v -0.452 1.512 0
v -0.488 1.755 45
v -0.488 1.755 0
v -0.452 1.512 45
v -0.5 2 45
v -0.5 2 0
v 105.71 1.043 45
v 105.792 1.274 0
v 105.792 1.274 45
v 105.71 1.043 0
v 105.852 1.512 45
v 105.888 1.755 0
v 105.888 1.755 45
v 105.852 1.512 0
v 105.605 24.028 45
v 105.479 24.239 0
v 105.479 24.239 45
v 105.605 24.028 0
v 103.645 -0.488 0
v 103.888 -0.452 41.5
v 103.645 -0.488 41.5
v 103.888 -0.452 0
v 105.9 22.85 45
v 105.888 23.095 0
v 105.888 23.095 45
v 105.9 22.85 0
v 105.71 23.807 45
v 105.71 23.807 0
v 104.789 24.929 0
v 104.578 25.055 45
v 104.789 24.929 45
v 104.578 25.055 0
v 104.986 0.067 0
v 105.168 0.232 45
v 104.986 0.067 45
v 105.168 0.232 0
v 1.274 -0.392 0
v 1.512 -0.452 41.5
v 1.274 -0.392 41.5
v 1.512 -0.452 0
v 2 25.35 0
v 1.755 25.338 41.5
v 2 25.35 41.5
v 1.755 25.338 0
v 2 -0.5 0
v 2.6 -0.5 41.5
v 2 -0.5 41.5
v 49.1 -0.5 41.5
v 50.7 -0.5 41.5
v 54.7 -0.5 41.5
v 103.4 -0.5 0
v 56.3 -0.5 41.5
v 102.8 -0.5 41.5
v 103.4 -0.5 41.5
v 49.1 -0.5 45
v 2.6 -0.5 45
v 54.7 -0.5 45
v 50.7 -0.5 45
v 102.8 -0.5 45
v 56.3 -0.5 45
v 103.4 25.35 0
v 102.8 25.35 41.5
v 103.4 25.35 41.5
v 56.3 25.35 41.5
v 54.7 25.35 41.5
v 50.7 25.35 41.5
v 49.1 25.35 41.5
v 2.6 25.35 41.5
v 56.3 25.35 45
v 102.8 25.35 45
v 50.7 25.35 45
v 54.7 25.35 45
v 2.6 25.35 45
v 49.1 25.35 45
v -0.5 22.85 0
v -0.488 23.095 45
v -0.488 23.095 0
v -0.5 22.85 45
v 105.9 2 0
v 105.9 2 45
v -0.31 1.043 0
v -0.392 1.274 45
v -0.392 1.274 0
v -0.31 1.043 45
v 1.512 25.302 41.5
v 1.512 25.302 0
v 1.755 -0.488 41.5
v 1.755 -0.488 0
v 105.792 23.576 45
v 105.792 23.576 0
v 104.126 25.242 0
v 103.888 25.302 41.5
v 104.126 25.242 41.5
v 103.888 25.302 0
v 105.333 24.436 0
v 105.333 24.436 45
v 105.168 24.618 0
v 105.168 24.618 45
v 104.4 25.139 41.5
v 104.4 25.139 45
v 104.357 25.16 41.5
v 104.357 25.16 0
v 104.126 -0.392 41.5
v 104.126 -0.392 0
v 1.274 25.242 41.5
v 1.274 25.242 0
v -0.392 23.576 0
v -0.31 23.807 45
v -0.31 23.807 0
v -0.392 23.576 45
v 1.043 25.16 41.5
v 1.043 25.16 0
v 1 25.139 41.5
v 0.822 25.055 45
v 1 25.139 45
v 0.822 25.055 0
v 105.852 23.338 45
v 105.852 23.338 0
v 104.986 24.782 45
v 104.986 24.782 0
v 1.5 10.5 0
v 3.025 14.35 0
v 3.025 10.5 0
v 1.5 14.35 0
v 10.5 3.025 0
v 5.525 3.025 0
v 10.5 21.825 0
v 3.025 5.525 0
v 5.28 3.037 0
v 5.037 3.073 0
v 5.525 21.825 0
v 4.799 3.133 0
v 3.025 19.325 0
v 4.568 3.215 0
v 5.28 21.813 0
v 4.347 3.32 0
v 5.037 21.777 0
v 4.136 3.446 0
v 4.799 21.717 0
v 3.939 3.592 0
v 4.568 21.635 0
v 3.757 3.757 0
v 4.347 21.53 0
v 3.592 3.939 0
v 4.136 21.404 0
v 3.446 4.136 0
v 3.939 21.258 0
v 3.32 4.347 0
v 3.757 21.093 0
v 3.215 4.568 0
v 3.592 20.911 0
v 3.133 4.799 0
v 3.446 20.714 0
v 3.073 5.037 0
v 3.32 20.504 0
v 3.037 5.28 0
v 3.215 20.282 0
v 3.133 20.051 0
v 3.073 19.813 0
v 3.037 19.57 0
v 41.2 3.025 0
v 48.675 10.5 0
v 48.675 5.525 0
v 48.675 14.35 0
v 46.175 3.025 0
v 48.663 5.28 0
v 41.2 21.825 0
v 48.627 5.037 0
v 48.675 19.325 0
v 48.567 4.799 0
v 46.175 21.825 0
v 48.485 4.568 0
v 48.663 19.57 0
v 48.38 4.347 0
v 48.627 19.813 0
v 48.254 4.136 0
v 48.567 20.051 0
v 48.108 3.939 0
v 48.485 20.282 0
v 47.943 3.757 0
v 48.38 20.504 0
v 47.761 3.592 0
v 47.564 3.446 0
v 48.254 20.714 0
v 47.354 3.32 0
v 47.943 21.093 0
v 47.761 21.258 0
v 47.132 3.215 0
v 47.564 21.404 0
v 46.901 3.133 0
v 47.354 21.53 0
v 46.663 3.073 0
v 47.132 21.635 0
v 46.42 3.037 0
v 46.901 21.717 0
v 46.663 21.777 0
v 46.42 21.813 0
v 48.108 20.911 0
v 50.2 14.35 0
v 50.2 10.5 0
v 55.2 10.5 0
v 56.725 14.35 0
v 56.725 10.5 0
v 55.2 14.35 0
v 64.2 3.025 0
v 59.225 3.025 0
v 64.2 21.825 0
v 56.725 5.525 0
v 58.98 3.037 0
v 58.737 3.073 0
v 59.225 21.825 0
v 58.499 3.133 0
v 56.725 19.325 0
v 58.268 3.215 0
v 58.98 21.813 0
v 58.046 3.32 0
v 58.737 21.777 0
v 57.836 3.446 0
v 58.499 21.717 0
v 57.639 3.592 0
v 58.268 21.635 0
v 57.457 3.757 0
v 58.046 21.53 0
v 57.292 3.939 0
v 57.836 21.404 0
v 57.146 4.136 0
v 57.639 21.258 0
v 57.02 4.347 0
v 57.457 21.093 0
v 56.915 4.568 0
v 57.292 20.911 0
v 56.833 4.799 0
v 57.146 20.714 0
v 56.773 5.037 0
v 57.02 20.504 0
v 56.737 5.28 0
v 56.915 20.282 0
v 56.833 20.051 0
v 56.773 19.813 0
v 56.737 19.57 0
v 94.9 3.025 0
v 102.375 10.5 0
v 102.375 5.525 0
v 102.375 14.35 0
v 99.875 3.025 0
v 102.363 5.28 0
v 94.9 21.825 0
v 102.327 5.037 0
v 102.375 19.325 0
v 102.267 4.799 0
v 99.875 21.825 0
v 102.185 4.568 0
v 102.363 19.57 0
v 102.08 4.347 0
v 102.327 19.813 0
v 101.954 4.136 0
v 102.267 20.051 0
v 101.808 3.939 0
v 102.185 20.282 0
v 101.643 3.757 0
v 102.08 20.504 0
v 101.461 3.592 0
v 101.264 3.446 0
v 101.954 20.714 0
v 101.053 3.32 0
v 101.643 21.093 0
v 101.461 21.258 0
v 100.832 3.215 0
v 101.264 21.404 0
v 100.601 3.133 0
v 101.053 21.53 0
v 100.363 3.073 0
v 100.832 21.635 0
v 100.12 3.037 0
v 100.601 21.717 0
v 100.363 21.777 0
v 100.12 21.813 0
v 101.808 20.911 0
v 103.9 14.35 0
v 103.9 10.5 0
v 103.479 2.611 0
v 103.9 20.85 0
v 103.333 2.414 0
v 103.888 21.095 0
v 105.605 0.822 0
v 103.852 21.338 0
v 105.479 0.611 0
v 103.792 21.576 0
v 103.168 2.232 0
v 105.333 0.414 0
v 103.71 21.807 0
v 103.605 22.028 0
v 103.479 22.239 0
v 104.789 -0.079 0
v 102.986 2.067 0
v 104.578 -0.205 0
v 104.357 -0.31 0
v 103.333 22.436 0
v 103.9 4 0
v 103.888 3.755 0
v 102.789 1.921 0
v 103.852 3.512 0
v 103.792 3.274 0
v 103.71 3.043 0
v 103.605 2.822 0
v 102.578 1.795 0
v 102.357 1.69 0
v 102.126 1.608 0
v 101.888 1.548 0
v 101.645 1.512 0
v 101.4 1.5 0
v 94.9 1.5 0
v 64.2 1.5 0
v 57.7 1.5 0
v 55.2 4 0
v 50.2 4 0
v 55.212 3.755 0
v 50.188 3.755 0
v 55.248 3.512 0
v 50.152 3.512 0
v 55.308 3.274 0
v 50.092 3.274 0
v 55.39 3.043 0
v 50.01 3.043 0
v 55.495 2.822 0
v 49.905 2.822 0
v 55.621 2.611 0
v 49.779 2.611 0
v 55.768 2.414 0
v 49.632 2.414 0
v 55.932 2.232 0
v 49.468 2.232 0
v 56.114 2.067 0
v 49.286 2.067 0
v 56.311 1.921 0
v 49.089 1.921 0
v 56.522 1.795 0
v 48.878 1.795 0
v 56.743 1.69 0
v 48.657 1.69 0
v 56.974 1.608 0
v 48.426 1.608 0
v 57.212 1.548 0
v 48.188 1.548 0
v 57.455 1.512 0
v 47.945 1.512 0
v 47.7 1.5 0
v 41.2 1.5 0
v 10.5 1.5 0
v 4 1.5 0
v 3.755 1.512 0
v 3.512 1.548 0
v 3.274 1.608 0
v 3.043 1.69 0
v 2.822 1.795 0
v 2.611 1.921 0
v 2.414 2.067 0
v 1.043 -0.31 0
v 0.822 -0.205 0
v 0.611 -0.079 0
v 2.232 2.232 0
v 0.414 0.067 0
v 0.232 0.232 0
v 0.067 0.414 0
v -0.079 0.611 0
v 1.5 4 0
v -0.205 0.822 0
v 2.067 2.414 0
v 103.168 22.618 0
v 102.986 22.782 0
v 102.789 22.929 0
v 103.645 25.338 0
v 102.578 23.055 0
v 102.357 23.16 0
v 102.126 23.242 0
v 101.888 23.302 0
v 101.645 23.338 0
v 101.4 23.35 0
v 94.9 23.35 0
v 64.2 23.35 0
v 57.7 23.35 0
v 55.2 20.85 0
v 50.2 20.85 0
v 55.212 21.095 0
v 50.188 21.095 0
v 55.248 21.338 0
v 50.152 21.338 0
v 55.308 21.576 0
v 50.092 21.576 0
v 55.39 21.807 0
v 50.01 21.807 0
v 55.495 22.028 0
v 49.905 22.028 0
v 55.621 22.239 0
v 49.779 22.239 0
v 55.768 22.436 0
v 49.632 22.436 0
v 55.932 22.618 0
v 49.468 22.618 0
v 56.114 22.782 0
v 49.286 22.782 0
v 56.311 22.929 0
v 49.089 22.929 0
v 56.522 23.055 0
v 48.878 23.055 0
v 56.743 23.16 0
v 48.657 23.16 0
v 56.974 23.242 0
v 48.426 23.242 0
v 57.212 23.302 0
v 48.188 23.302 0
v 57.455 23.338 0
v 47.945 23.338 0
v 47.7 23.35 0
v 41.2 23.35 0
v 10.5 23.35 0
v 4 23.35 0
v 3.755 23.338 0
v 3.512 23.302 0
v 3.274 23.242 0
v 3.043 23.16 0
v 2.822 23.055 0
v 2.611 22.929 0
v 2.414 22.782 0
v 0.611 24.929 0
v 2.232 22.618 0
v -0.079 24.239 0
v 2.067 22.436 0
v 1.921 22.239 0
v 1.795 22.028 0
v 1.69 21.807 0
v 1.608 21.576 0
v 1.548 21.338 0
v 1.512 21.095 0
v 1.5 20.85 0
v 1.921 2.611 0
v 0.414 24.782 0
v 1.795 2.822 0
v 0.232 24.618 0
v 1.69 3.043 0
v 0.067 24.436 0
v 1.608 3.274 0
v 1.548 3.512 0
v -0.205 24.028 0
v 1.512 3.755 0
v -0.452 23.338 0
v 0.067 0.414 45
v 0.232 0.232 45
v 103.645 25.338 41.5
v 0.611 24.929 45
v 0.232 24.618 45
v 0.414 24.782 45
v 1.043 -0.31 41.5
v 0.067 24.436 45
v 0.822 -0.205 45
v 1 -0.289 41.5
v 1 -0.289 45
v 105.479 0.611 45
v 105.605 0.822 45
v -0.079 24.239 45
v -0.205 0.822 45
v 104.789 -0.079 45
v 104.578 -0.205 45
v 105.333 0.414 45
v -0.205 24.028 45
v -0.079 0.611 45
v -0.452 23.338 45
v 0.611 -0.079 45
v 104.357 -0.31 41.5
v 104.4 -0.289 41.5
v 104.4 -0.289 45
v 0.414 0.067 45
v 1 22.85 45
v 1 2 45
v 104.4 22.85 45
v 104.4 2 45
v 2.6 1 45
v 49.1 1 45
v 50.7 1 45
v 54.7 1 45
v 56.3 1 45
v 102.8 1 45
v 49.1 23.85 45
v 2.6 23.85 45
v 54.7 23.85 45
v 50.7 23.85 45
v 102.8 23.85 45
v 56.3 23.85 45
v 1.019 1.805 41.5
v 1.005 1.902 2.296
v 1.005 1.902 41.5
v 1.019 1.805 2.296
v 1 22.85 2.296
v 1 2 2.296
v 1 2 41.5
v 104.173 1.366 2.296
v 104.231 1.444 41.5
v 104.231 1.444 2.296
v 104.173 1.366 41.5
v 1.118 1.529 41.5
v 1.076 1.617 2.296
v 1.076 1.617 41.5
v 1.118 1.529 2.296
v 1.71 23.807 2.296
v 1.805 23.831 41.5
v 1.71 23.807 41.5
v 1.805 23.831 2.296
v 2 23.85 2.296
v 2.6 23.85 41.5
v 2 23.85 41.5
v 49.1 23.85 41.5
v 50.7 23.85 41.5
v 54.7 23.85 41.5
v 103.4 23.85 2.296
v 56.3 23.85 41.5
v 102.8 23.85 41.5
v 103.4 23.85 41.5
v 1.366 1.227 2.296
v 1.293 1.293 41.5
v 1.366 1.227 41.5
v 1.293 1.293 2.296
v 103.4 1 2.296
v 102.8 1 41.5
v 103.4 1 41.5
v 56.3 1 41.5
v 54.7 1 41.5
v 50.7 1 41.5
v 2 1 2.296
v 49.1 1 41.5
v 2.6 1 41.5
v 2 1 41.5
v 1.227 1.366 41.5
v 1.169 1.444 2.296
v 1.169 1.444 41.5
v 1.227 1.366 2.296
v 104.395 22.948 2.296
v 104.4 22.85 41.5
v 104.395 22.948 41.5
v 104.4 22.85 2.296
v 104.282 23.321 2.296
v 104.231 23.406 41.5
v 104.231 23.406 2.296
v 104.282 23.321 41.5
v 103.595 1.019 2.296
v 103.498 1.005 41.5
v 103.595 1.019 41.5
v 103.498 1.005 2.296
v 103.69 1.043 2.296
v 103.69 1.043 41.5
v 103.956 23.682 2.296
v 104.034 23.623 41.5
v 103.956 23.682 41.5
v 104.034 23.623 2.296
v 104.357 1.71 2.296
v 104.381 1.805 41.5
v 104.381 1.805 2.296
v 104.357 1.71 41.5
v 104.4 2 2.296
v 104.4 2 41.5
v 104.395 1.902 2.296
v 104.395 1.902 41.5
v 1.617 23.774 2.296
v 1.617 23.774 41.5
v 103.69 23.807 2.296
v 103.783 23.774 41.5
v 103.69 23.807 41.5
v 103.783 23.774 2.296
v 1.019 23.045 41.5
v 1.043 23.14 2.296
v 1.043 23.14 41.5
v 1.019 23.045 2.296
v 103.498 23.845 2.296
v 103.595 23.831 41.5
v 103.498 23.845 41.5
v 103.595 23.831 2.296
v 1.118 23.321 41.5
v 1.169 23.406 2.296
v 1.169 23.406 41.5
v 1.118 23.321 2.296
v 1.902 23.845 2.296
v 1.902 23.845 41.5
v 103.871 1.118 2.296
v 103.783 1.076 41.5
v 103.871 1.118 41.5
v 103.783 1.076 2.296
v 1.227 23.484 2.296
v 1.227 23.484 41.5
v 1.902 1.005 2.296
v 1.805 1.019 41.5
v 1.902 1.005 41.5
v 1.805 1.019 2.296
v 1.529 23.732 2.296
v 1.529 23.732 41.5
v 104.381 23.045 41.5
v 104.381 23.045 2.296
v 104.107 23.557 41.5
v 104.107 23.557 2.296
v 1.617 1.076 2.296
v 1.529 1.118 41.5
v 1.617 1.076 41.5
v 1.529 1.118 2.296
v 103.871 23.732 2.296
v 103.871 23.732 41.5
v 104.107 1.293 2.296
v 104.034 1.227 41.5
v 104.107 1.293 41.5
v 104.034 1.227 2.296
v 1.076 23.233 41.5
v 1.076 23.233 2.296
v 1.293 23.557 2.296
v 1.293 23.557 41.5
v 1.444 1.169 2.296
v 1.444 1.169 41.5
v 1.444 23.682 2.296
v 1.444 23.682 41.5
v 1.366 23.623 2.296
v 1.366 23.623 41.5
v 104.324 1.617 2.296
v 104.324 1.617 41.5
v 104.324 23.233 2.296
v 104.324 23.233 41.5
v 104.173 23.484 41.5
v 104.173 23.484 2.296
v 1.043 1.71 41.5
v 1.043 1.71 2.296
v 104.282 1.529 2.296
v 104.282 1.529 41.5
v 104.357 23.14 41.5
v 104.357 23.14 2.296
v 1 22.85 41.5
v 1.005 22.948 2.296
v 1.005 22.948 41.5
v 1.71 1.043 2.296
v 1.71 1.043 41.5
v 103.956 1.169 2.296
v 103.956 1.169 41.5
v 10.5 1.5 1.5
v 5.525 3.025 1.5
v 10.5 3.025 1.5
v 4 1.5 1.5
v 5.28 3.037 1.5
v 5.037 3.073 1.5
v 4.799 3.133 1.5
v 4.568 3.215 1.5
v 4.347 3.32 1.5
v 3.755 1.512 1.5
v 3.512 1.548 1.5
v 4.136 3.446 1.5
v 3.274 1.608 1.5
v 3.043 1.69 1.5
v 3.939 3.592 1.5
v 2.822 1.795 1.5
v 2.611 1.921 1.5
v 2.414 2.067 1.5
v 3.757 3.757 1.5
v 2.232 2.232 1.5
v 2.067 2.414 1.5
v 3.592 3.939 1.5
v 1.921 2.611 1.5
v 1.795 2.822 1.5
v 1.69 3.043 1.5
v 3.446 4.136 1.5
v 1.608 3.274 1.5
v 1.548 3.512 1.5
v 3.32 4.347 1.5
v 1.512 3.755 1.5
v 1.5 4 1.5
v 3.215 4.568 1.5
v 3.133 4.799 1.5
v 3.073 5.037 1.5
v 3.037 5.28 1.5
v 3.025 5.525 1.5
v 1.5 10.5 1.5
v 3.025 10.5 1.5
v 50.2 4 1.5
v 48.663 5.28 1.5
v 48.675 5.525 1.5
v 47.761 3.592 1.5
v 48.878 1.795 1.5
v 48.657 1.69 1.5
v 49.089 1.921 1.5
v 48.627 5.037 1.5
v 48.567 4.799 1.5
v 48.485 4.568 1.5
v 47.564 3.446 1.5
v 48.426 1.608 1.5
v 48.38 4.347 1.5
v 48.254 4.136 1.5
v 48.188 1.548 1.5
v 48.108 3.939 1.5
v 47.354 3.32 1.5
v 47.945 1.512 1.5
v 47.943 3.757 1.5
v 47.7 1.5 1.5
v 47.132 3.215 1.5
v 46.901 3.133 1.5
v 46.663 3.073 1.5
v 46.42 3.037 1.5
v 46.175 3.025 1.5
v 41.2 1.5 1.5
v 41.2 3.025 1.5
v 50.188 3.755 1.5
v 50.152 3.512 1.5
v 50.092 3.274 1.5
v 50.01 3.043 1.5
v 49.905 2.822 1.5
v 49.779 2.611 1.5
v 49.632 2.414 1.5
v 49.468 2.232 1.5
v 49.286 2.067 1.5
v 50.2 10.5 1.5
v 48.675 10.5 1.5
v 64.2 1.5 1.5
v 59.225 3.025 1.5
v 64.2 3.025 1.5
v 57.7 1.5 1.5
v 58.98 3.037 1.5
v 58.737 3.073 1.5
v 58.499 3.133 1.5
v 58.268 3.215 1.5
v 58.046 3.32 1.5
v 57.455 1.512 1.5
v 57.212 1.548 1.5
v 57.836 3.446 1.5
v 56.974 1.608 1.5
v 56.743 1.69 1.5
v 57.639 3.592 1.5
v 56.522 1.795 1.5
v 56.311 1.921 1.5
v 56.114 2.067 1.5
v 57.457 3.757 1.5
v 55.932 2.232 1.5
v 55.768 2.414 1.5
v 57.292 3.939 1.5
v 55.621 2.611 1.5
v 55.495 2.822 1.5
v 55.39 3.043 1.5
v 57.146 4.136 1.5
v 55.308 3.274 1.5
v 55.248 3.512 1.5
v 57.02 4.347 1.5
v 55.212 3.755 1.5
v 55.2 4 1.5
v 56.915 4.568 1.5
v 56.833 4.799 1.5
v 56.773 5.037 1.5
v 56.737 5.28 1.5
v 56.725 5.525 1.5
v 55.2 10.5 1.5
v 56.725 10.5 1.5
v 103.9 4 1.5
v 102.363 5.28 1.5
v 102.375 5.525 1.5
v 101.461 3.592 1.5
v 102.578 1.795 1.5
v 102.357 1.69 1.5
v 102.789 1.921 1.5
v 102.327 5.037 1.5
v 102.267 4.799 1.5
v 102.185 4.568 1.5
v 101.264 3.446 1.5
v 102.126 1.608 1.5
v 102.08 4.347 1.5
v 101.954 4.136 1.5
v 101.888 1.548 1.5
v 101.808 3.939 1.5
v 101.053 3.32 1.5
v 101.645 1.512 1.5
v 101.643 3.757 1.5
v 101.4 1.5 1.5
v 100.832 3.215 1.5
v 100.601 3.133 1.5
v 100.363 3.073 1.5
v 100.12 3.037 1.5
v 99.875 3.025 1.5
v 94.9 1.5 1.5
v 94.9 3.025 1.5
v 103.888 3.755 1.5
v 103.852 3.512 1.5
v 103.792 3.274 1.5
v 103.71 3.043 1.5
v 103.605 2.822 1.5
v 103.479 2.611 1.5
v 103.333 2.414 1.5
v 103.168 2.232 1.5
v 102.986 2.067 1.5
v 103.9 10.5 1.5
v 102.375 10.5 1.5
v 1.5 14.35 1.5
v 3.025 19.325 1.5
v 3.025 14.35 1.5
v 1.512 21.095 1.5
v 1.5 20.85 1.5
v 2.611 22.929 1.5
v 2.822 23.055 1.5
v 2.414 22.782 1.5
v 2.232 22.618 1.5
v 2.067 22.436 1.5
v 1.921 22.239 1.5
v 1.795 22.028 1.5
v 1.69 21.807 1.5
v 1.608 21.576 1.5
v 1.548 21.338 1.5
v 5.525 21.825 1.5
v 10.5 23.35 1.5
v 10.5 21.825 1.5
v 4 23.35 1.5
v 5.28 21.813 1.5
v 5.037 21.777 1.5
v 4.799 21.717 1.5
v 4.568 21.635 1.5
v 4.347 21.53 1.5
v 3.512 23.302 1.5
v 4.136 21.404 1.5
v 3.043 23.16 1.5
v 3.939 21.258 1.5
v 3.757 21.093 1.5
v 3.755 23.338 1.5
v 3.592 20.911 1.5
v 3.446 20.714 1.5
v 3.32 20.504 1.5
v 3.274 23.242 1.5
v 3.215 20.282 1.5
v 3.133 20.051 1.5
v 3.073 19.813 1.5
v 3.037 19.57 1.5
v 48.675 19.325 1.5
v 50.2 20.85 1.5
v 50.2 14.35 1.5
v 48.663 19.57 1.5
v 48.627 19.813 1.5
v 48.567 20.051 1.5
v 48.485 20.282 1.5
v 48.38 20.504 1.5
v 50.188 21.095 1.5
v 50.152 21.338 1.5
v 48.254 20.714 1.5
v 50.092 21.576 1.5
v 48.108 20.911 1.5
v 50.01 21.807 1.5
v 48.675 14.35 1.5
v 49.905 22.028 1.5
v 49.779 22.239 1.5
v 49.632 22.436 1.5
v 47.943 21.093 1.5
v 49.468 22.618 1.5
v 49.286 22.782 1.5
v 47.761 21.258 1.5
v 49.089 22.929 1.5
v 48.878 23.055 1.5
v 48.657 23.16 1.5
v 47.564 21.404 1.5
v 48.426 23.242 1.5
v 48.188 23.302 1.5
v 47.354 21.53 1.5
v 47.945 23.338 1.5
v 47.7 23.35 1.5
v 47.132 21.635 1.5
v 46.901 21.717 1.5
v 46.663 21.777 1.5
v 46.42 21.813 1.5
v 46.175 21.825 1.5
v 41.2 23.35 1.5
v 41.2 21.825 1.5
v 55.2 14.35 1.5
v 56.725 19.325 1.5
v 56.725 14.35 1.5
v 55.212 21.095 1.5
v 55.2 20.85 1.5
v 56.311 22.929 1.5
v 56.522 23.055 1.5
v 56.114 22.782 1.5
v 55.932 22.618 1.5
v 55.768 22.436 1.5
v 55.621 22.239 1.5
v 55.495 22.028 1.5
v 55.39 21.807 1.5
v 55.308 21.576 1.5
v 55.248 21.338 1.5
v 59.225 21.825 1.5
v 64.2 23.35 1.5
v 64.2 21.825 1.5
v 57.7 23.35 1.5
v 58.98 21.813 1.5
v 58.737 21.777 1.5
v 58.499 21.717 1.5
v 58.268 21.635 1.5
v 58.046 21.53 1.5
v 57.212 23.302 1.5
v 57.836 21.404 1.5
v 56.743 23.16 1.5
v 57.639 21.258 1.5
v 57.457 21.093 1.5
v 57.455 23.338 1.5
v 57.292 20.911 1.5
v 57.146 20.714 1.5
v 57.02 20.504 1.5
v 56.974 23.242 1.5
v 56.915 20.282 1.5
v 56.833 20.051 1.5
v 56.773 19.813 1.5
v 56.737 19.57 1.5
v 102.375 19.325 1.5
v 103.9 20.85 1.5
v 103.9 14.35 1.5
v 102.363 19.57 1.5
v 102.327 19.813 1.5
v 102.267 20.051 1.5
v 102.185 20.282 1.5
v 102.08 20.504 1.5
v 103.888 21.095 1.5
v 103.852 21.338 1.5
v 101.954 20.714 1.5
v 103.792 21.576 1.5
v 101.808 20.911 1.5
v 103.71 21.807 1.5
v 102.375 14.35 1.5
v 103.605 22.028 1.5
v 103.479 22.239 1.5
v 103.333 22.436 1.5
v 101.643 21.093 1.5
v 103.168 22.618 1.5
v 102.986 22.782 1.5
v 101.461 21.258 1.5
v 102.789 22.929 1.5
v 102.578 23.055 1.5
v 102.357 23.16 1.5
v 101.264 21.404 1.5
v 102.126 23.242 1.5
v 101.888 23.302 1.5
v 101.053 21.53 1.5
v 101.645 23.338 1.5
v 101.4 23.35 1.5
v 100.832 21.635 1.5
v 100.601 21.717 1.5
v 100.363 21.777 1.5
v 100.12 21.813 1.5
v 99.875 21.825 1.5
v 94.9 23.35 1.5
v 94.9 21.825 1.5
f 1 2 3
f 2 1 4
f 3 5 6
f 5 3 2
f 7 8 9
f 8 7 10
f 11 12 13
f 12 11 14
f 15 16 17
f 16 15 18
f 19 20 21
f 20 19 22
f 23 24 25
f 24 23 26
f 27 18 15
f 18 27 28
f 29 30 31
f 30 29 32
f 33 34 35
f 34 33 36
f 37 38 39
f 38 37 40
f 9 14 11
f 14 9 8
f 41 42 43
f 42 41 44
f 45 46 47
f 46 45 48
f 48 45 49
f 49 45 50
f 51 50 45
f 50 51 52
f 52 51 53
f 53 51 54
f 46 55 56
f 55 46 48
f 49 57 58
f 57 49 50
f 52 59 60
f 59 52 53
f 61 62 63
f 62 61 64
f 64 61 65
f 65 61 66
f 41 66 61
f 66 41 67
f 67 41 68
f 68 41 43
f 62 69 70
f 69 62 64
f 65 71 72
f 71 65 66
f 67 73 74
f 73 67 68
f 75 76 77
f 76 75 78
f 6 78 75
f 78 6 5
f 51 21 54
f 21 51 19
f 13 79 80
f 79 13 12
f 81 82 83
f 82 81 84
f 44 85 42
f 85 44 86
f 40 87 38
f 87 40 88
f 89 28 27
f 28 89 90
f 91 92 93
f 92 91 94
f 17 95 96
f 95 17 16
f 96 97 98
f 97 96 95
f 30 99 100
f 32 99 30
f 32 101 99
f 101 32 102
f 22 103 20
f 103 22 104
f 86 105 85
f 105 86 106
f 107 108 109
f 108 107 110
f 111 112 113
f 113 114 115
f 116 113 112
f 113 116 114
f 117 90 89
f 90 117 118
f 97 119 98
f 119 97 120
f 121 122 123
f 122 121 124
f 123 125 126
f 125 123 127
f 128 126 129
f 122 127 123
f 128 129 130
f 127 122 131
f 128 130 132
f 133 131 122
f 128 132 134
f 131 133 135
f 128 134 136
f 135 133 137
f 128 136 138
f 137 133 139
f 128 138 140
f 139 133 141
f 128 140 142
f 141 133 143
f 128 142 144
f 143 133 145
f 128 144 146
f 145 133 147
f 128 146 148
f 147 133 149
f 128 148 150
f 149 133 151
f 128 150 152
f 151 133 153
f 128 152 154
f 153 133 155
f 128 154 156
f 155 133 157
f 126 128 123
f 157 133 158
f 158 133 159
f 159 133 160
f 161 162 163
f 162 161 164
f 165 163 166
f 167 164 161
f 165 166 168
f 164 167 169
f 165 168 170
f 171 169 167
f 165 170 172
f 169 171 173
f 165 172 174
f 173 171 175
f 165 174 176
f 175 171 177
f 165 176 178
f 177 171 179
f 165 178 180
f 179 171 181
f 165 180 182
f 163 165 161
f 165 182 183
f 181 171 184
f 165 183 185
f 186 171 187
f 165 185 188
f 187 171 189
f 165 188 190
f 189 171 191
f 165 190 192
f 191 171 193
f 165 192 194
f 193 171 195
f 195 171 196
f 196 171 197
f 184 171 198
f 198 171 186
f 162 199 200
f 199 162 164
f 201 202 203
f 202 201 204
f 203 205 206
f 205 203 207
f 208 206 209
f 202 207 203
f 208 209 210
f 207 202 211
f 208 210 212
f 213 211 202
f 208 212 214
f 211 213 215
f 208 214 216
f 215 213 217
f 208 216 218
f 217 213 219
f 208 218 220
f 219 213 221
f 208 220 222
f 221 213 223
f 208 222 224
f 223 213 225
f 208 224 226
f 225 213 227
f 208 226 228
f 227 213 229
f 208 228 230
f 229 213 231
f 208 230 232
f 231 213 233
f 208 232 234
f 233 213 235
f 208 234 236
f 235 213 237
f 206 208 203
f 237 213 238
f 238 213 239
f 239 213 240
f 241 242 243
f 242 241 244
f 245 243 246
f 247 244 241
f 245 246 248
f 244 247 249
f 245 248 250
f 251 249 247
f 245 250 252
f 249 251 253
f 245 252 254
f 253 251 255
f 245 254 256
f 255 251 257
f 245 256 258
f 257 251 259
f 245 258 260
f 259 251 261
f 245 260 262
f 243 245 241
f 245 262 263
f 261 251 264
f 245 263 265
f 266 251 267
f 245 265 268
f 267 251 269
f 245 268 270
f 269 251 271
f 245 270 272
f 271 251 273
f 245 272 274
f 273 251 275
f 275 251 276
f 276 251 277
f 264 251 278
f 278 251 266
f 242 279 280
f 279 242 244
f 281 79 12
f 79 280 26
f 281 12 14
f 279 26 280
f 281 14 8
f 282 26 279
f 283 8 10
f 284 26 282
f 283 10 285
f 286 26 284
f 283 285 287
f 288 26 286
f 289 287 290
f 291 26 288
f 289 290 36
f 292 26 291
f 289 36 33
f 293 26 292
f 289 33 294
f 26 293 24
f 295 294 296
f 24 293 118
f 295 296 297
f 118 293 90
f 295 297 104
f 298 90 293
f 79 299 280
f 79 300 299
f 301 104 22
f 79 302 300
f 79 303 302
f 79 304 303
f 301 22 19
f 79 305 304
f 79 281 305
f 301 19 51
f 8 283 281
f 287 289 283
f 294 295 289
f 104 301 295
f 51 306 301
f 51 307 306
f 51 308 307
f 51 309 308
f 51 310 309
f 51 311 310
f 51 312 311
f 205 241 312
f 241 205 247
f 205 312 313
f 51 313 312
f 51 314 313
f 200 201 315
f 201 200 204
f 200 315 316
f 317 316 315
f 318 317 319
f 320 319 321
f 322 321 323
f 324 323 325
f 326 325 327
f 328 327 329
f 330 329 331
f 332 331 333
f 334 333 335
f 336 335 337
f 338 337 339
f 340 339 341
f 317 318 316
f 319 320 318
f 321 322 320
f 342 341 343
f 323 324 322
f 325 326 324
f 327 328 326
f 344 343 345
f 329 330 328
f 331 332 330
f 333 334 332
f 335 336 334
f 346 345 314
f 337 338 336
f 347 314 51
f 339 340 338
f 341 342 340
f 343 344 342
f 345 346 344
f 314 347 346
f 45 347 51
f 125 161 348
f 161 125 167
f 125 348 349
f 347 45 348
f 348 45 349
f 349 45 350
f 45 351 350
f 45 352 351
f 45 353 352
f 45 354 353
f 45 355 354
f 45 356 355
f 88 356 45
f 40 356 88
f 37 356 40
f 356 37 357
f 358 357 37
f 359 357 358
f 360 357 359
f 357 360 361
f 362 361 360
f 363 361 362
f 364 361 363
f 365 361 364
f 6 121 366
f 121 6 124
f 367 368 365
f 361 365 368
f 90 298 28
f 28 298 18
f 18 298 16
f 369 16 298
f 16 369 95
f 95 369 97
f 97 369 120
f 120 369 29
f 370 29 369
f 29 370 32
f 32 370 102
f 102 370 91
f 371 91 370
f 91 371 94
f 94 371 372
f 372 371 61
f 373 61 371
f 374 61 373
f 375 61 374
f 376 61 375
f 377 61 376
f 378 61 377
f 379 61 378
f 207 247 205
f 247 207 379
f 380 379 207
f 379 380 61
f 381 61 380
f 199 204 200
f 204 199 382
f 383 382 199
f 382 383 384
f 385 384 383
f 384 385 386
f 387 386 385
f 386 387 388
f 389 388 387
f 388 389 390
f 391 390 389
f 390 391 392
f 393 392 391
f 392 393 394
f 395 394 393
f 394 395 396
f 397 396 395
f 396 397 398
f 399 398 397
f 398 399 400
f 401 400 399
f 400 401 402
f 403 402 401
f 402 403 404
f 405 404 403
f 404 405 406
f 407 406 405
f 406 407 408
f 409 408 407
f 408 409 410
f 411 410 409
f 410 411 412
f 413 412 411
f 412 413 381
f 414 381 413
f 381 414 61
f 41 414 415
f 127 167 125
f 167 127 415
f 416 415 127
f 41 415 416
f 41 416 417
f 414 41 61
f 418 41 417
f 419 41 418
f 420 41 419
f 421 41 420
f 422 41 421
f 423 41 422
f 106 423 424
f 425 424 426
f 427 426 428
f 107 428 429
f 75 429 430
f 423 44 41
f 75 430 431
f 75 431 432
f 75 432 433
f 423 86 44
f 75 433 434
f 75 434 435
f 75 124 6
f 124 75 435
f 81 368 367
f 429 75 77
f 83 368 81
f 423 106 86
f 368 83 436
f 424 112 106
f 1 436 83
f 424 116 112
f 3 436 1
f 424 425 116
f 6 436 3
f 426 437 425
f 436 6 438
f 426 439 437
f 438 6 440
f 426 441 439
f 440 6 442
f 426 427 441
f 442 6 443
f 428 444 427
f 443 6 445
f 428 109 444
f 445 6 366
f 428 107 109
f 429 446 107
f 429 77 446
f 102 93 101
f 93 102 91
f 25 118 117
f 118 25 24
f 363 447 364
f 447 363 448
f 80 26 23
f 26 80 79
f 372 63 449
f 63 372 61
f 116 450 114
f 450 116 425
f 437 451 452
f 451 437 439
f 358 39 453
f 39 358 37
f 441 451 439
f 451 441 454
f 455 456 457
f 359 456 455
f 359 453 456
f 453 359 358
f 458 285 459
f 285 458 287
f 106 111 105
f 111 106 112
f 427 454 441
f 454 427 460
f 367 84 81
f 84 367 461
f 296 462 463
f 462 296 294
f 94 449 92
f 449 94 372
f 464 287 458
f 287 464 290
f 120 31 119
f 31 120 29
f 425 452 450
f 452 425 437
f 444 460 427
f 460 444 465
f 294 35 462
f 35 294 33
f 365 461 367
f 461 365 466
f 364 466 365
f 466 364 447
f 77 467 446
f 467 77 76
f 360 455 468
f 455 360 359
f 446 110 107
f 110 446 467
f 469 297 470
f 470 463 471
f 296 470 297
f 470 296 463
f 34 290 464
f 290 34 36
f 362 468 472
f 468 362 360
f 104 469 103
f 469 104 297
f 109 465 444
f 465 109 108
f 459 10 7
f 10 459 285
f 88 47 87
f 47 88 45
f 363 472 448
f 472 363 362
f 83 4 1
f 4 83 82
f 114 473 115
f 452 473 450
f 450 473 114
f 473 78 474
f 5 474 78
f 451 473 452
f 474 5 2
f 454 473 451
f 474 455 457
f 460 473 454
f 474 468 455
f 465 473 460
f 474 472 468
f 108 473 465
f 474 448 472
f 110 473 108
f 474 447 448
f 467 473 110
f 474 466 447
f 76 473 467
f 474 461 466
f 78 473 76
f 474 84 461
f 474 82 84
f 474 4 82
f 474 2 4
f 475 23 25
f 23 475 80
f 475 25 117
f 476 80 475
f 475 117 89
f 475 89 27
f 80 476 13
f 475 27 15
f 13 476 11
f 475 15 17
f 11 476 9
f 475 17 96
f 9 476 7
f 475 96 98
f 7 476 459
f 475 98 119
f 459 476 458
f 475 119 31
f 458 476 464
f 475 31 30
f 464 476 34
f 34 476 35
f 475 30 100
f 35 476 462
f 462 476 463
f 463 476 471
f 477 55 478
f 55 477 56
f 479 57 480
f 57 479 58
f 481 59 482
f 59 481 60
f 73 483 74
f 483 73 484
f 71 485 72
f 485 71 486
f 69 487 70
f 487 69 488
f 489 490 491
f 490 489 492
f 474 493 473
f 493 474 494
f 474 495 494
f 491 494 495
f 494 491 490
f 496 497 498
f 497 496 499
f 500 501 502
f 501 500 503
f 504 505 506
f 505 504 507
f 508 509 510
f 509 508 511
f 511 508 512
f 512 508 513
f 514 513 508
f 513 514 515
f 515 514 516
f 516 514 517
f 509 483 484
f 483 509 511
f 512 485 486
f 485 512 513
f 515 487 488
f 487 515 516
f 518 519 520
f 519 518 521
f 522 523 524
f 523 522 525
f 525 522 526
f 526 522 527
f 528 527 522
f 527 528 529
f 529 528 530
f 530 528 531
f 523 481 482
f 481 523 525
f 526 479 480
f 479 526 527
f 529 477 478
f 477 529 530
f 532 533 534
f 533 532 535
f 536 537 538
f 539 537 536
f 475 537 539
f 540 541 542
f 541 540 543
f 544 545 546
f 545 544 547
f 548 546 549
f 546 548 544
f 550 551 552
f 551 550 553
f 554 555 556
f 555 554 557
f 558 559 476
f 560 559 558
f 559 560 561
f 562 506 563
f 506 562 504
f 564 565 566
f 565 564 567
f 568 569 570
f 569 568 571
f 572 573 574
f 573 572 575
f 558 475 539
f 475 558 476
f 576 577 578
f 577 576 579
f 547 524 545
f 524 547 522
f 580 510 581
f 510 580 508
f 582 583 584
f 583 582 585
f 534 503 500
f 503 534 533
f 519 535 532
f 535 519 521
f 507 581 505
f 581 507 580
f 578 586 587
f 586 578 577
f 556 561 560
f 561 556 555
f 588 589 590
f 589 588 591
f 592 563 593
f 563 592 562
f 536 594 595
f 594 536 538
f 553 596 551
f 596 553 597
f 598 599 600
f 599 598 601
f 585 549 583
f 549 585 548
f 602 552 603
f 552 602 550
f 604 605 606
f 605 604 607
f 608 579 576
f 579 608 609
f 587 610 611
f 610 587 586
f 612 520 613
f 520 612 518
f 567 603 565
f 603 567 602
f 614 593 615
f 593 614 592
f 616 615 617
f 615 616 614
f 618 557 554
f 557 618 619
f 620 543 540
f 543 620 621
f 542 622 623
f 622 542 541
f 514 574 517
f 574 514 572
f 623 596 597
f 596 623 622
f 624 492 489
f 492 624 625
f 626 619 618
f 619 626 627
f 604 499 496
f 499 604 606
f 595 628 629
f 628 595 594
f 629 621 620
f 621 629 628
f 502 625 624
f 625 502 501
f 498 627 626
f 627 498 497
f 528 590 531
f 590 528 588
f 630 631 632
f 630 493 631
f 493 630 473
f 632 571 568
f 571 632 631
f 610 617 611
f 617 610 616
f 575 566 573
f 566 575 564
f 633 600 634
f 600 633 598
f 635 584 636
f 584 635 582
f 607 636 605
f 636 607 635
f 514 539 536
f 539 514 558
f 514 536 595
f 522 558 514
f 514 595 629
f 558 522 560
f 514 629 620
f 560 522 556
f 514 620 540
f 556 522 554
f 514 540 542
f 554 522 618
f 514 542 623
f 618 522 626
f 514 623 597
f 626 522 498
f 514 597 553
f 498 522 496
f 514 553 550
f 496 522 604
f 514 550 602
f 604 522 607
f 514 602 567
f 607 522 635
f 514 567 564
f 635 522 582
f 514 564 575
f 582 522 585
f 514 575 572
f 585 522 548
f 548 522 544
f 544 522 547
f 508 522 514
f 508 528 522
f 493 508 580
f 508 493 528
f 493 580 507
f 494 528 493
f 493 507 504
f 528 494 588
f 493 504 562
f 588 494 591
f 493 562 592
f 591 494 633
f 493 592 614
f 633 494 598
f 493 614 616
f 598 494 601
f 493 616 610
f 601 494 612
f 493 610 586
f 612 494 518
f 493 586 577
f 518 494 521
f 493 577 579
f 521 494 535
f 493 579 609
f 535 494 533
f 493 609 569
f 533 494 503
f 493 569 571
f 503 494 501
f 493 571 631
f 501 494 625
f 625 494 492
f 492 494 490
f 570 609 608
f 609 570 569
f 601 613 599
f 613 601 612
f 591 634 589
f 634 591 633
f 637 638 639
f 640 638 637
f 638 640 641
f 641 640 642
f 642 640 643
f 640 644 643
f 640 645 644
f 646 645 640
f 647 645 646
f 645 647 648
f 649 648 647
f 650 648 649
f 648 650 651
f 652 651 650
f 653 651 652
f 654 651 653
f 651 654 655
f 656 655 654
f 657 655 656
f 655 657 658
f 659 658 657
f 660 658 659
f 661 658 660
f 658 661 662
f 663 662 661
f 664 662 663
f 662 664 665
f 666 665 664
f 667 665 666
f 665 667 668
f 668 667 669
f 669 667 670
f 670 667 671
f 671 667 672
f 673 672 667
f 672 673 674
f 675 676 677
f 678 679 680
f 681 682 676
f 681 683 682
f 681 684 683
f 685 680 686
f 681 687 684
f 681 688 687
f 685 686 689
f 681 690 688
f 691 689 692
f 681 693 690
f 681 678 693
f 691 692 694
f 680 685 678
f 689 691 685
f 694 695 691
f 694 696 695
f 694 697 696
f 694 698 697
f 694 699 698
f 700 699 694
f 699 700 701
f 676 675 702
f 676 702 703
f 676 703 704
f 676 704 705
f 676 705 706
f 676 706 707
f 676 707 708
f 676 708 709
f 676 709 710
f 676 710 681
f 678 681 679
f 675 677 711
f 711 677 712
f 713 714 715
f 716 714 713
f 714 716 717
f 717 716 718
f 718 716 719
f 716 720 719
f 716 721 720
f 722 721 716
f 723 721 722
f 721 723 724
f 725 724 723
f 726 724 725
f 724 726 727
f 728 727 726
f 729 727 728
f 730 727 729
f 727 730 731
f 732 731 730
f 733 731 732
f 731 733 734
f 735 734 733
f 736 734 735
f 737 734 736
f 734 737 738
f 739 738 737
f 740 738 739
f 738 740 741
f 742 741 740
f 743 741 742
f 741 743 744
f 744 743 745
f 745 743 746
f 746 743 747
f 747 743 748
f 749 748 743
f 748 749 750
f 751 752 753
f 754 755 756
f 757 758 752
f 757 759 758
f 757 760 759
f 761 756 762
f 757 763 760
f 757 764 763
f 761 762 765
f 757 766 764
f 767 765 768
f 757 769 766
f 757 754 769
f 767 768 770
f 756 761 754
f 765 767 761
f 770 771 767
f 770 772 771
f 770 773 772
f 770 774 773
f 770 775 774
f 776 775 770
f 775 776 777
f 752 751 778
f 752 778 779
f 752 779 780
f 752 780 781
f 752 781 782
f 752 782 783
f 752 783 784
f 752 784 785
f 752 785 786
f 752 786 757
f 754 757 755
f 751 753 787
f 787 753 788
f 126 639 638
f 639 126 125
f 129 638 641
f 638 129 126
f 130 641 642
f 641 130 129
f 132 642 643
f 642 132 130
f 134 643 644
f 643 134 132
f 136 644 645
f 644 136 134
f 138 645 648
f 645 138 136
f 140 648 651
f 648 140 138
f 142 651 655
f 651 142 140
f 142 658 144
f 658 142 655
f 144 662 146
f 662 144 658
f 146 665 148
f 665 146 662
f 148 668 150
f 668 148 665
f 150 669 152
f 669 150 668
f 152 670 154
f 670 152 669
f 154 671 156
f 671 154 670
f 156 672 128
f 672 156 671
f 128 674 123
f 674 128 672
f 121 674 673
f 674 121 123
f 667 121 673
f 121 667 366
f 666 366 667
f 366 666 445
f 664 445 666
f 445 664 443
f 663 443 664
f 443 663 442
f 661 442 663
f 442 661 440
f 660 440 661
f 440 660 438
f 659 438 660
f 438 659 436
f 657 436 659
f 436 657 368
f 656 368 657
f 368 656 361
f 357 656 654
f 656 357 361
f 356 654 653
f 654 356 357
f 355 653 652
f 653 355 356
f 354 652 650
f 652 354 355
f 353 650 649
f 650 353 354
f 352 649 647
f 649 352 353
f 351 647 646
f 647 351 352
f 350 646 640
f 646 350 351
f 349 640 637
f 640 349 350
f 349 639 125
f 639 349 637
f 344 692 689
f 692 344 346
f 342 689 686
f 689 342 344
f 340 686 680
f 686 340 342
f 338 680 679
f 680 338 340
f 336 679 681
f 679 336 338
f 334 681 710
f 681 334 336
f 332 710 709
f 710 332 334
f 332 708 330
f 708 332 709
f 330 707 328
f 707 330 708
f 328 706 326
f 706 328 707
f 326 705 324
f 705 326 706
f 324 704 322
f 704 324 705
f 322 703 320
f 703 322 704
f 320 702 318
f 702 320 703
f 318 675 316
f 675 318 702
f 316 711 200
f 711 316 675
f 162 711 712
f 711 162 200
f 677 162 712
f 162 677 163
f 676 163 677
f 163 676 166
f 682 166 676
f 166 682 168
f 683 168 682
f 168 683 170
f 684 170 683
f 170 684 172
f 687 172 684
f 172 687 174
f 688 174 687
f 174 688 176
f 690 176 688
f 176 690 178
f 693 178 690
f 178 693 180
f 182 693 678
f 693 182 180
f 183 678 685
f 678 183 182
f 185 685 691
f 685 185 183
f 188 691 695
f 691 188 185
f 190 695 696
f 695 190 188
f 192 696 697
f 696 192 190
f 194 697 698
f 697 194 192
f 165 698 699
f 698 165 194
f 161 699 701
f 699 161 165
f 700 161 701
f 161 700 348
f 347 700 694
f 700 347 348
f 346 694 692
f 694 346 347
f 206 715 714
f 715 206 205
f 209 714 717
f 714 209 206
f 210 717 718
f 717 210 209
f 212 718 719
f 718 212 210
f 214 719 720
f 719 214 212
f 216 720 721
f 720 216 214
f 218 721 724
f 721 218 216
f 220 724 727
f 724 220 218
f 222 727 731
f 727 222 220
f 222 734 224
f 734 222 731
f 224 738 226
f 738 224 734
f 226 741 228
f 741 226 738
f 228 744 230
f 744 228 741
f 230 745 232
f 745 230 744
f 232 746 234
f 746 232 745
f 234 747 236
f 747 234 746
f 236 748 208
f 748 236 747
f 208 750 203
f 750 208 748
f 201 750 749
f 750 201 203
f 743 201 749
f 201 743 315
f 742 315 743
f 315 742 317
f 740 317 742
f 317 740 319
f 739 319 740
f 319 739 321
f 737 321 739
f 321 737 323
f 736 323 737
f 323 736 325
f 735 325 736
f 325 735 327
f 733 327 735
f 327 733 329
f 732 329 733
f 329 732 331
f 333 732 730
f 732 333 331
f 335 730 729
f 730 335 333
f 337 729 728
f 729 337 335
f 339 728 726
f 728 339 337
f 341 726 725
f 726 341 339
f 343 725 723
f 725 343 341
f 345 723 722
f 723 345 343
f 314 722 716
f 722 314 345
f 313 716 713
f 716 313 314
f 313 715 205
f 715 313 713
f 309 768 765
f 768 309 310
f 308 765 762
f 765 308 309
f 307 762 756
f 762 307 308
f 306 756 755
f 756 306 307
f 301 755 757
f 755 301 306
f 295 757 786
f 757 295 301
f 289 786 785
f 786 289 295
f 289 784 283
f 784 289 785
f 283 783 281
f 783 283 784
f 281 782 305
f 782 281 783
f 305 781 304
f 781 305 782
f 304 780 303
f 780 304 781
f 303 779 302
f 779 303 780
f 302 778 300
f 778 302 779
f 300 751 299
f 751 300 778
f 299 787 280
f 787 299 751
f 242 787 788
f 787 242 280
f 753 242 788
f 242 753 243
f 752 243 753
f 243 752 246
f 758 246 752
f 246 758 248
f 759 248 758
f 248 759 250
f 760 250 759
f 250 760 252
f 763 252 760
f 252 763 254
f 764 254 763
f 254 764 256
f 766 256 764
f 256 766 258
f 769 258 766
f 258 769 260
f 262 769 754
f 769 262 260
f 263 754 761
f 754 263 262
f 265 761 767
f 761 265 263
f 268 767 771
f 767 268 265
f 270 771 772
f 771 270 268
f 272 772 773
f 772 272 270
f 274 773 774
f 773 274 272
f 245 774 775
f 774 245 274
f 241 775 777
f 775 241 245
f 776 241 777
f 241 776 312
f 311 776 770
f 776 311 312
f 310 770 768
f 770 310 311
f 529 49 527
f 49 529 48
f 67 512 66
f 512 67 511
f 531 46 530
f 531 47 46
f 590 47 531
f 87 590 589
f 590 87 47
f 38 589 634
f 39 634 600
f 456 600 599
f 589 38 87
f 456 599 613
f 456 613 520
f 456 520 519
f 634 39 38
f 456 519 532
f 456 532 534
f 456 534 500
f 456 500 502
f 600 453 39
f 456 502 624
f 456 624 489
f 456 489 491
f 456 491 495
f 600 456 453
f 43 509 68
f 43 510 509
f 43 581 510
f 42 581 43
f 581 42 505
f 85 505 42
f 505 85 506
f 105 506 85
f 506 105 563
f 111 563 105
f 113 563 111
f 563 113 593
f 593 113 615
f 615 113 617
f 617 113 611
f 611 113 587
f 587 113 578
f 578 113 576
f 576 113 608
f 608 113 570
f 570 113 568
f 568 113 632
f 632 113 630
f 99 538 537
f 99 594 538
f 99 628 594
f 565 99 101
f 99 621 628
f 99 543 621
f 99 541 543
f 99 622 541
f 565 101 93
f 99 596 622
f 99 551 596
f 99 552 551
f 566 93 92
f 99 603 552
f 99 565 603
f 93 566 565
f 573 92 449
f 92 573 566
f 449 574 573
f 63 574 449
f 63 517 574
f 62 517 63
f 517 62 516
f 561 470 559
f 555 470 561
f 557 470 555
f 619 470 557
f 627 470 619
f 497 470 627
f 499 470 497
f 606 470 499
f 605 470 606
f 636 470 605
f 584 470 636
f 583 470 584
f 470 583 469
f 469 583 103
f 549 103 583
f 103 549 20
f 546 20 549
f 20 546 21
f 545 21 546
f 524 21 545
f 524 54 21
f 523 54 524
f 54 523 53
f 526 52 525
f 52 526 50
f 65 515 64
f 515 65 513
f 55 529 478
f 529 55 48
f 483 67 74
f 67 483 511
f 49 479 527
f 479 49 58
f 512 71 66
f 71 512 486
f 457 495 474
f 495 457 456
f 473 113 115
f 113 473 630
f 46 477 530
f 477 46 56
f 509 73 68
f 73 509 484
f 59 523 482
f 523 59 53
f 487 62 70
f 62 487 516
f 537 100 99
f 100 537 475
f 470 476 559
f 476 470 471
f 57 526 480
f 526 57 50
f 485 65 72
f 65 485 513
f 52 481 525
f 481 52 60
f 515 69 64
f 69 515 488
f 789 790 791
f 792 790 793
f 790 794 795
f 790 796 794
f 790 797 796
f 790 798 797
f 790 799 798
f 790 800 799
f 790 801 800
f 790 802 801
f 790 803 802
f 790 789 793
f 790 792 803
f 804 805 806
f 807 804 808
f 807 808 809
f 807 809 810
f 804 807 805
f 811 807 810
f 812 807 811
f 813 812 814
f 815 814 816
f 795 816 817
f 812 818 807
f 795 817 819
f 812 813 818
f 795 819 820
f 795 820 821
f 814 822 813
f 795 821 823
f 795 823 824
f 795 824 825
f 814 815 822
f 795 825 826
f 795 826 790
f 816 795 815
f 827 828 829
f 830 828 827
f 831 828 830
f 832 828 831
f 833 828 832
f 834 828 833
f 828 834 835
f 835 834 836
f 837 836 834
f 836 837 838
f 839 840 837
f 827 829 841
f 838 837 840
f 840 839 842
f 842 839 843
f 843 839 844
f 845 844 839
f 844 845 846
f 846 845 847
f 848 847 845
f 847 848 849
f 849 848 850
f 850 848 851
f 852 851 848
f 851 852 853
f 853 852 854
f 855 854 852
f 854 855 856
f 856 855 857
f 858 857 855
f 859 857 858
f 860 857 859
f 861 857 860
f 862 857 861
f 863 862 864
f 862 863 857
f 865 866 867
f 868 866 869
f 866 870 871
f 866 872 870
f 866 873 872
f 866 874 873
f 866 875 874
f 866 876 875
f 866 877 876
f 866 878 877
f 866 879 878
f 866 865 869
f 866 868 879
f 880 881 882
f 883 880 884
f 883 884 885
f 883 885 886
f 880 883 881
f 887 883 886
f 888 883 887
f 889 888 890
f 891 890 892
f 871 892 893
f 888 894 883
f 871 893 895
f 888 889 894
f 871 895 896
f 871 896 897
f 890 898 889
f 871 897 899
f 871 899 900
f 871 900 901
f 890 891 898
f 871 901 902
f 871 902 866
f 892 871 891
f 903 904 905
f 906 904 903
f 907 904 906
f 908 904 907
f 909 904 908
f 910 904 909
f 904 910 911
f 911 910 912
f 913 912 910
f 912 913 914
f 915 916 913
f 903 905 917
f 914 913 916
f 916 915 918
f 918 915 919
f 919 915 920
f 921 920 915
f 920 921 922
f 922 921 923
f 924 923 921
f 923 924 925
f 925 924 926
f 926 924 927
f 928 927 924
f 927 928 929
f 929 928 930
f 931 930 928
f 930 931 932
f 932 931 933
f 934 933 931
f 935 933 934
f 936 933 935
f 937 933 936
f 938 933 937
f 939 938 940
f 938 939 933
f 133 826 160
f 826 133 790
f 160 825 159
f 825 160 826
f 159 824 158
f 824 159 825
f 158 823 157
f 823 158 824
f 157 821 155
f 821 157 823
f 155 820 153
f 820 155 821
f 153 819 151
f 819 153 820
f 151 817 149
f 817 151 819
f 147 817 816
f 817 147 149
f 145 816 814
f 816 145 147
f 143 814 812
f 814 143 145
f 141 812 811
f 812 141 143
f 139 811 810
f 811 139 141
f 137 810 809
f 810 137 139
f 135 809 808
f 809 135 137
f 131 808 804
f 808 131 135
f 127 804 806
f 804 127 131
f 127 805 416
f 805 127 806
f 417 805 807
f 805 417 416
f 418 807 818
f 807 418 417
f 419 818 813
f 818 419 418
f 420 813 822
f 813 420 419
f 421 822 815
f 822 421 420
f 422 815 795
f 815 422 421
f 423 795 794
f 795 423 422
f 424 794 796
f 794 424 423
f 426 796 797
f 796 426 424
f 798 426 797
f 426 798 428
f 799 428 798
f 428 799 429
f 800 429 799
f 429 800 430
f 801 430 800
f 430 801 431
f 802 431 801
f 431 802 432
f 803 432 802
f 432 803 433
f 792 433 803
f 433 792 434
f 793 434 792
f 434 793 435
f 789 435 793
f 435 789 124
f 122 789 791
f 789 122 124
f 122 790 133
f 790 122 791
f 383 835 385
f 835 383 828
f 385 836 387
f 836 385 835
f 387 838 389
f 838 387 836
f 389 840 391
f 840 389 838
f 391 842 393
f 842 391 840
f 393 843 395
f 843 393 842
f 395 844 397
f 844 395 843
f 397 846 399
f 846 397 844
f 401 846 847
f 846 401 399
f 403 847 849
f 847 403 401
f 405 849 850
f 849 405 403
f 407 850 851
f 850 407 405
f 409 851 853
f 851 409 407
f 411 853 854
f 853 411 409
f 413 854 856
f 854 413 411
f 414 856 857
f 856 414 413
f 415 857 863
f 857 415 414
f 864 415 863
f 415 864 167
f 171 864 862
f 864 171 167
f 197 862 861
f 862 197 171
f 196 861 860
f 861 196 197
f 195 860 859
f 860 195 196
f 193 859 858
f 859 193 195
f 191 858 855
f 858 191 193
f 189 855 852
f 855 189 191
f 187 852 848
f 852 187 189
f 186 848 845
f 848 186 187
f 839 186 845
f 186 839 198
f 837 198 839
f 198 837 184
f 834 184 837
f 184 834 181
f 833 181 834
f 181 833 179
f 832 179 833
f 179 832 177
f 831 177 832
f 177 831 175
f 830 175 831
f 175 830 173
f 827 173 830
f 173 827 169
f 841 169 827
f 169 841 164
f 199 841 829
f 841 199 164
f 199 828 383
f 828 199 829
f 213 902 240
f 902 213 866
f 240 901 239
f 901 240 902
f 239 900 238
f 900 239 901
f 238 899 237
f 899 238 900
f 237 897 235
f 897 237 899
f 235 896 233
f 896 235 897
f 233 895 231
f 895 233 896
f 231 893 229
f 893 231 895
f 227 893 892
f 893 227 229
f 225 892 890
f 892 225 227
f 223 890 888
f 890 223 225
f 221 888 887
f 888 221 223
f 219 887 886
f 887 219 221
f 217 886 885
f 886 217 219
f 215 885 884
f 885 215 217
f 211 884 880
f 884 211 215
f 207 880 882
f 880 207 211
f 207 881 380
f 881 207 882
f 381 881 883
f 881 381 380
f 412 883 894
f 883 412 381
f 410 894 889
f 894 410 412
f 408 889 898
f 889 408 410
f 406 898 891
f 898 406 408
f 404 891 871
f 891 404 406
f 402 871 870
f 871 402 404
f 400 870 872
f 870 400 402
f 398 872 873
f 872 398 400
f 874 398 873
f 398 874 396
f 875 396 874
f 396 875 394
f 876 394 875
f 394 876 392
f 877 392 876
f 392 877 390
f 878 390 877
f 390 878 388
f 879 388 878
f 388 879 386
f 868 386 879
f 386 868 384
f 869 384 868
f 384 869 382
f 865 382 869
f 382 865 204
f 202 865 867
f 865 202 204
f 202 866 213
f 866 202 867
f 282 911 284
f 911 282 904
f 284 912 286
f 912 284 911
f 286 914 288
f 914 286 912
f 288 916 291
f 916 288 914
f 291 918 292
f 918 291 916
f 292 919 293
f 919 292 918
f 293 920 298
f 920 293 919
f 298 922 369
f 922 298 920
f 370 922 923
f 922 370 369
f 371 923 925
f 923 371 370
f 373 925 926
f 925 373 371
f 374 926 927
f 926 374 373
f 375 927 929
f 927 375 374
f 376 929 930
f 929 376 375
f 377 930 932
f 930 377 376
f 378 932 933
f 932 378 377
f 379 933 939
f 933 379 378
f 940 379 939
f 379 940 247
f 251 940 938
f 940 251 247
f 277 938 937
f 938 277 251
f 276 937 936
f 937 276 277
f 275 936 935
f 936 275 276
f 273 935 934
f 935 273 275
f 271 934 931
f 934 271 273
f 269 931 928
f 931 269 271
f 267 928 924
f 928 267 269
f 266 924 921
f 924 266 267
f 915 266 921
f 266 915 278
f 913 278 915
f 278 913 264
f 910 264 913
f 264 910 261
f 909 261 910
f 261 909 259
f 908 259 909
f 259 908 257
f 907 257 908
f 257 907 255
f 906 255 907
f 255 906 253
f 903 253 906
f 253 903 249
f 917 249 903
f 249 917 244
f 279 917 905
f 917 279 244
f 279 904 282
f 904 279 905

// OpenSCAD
module Container_num_x_2_num_y_0_5(){
  difference(){
    translate([52.7, 12.425, 0])color("red")difference(){
          translate([-53.2, -12.925, 0])color("purple")union()linear_extrude(height=45)translate([2.5, 2.5, 0])hull(){
                      circle(d=5,$fn=64);
                      translate([101.4, 0, 0])circle(d=5,$fn=64);
                      translate([0, 20.85, 0])circle(d=5,$fn=64);
                      translate([101.4, 20.85, 0])circle(d=5,$fn=64);
                    }

          translate([-51.7, -11.425, 2.296])union()linear_extrude(height=45.008)translate([1, 1, 0])hull(){
                    circle(d=2,$fn=64);
                    translate([101.4, 0, 0])circle(d=2,$fn=64);
                    translate([0, 20.85, 0])circle(d=2,$fn=64);
                    translate([101.4, 20.85, 0])circle(d=2,$fn=64);
                  }

        }

    union(){
      translate([25.85, 25.85, 0])union(){
          translate([0, 0, -1])%linear_extrude(height=1)union(){
                translate([-25.85, -25.85, 0])square([51.7, 51.7]);
                translate([-25.85, -25.85, 0])square([51.7, 51.7]);
                translate([27.85, -25.85, 0])square([51.7, 51.7]);
              }

          translate([0, 0, 45.002])%linear_extrude(height=1.004)union(){
                translate([-25.85, -25.85, 0])square([51.7, 51.7]);
                translate([-25.85, -25.85, 0])square([51.7, 51.7]);
                translate([27.85, -25.85, 0])square([51.7, 51.7]);
              }

          color("red")linear_extrude(height=1.5)union(){
                difference(){
                  translate([-24.35, -24.35, 0])union()translate([2.5, 2.5, 0])hull(){
                          circle(d=5,$fn=64);
                          translate([43.7, 0, 0])circle(d=5,$fn=64);
                          translate([0, 43.7, 0])circle(d=5,$fn=64);
                          translate([43.7, 43.7, 0])circle(d=5,$fn=64);
                        }

                  translate([-22.825, -22.825, 0])union()translate([2.5, 2.5, 0])hull(){
                          circle(d=5,$fn=64);
                          translate([40.65, 0, 0])circle(d=5,$fn=64);
                          translate([0, 40.65, 0])circle(d=5,$fn=64);
                          translate([40.65, 40.65, 0])circle(d=5,$fn=64);
                        }

                  translate([-15.35, -25.85, 0])square([30.700000000000003, 51.7]);
                  translate([-25.85, -15.35, 0])square([51.7, 30.700000000000003]);
                }

                difference(){
                  translate([-24.35, -24.35, 0])union()translate([2.5, 2.5, 0])hull(){
                          circle(d=5,$fn=64);
                          translate([43.7, 0, 0])circle(d=5,$fn=64);
                          translate([0, 43.7, 0])circle(d=5,$fn=64);
                          translate([43.7, 43.7, 0])circle(d=5,$fn=64);
                        }

                  translate([-22.825, -22.825, 0])union()translate([2.5, 2.5, 0])hull(){
                          circle(d=5,$fn=64);
                          translate([40.65, 0, 0])circle(d=5,$fn=64);
                          translate([0, 40.65, 0])circle(d=5,$fn=64);
                          translate([40.65, 40.65, 0])circle(d=5,$fn=64);
                        }

                  translate([-15.35, -25.85, 0])square([30.700000000000003, 51.7]);
                  translate([-25.85, -15.35, 0])square([51.7, 30.700000000000003]);
                }

                translate([53.7, 0, 0])difference(){
                    translate([-24.35, -24.35, 0])union()translate([2.5, 2.5, 0])hull(){
                            circle(d=5,$fn=64);
                            translate([43.7, 0, 0])circle(d=5,$fn=64);
                            translate([0, 43.7, 0])circle(d=5,$fn=64);
                            translate([43.7, 43.7, 0])circle(d=5,$fn=64);
                          }

                    translate([-22.825, -22.825, 0])union()translate([2.5, 2.5, 0])hull(){
                            circle(d=5,$fn=64);
                            translate([40.65, 0, 0])circle(d=5,$fn=64);
                            translate([0, 40.65, 0])circle(d=5,$fn=64);
                            translate([40.65, 40.65, 0])circle(d=5,$fn=64);
                          }

                    translate([-15.35, -25.85, 0])square([30.700000000000003, 51.7]);
                    translate([-25.85, -15.35, 0])square([51.7, 30.700000000000003]);
                  }

              }

          translate([0, 0, 41.5])color("blue")linear_extrude(height=3.5)union(){
                  translate([-21.6, 23.25, 0])square([43.2, 1.6]);
                  translate([-21.6, -24.85, 0])square([43.2, 1.6]);
                  translate([23.25, -21.6, 0])square([1.6, 43.2]);
                  translate([-24.85, -21.6, 0])square([1.6, 43.2]);
                  union(){
                    translate([-21.6, 23.25, 0])square([43.2, 1.6]);
                    translate([-21.6, -24.85, 0])square([43.2, 1.6]);
                    translate([23.25, -21.6, 0])square([1.6, 43.2]);
                    translate([-24.85, -21.6, 0])square([1.6, 43.2]);
                  }

                  translate([53.7, 0, 0])union(){
                      translate([-21.6, 23.25, 0])square([43.2, 1.6]);
                      translate([-21.6, -24.85, 0])square([43.2, 1.6]);
                      translate([23.25, -21.6, 0])square([1.6, 43.2]);
                      translate([-24.85, -21.6, 0])square([1.6, 43.2]);
                    }

                }

        }

      translate([25.85, -1, 0])union(){
          translate([0, 0, -1])%linear_extrude(height=1)union(){
                translate([-25.85, -25.85, 0])square([51.7, 51.7]);
                translate([-25.85, -25.85, 0])square([51.7, 51.7]);
                translate([27.85, -25.85, 0])square([51.7, 51.7]);
              }

          translate([0, 0, 45.002])%linear_extrude(height=1.004)union(){
                translate([-25.85, -25.85, 0])square([51.7, 51.7]);
                translate([-25.85, -25.85, 0])square([51.7, 51.7]);
                translate([27.85, -25.85, 0])square([51.7, 51.7]);
              }

          color("red")linear_extrude(height=1.5)union(){
                difference(){
                  translate([-24.35, -24.35, 0])union()translate([2.5, 2.5, 0])hull(){
                          circle(d=5,$fn=64);
                          translate([43.7, 0, 0])circle(d=5,$fn=64);
                          translate([0, 43.7, 0])circle(d=5,$fn=64);
                          translate([43.7, 43.7, 0])circle(d=5,$fn=64);
                        }

                  translate([-22.825, -22.825, 0])union()translate([2.5, 2.5, 0])hull(){
                          circle(d=5,$fn=64);
                          translate([40.65, 0, 0])circle(d=5,$fn=64);
                          translate([0, 40.65, 0])circle(d=5,$fn=64);
                          translate([40.65, 40.65, 0])circle(d=5,$fn=64);
                        }

                  translate([-15.35, -25.85, 0])square([30.700000000000003, 51.7]);
                  translate([-25.85, -15.35, 0])square([51.7, 30.700000000000003]);
                }

                difference(){
                  translate([-24.35, -24.35, 0])union()translate([2.5, 2.5, 0])hull(){
                          circle(d=5,$fn=64);
                          translate([43.7, 0, 0])circle(d=5,$fn=64);
                          translate([0, 43.7, 0])circle(d=5,$fn=64);
                          translate([43.7, 43.7, 0])circle(d=5,$fn=64);
                        }

                  translate([-22.825, -22.825, 0])union()translate([2.5, 2.5, 0])hull(){
                          circle(d=5,$fn=64);
                          translate([40.65, 0, 0])circle(d=5,$fn=64);
                          translate([0, 40.65, 0])circle(d=5,$fn=64);
                          translate([40.65, 40.65, 0])circle(d=5,$fn=64);
                        }

                  translate([-15.35, -25.85, 0])square([30.700000000000003, 51.7]);
                  translate([-25.85, -15.35, 0])square([51.7, 30.700000000000003]);
                }

                translate([53.7, 0, 0])difference(){
                    translate([-24.35, -24.35, 0])union()translate([2.5, 2.5, 0])hull(){
                            circle(d=5,$fn=64);
                            translate([43.7, 0, 0])circle(d=5,$fn=64);
                            translate([0, 43.7, 0])circle(d=5,$fn=64);
                            translate([43.7, 43.7, 0])circle(d=5,$fn=64);
                          }

                    translate([-22.825, -22.825, 0])union()translate([2.5, 2.5, 0])hull(){
                            circle(d=5,$fn=64);
                            translate([40.65, 0, 0])circle(d=5,$fn=64);
                            translate([0, 40.65, 0])circle(d=5,$fn=64);
                            translate([40.65, 40.65, 0])circle(d=5,$fn=64);
                          }

                    translate([-15.35, -25.85, 0])square([30.700000000000003, 51.7]);
                    translate([-25.85, -15.35, 0])square([51.7, 30.700000000000003]);
                  }

              }

          translate([0, 0, 41.5])color("blue")linear_extrude(height=3.5)union(){
                  translate([-21.6, 23.25, 0])square([43.2, 1.6]);
                  translate([-21.6, -24.85, 0])square([43.2, 1.6]);
                  translate([23.25, -21.6, 0])square([1.6, 43.2]);
                  translate([-24.85, -21.6, 0])square([1.6, 43.2]);
                  union(){
                    translate([-21.6, 23.25, 0])square([43.2, 1.6]);
                    translate([-21.6, -24.85, 0])square([43.2, 1.6]);
                    translate([23.25, -21.6, 0])square([1.6, 43.2]);
                    translate([-24.85, -21.6, 0])square([1.6, 43.2]);
                  }

                  translate([53.7, 0, 0])union(){
                      translate([-21.6, 23.25, 0])square([43.2, 1.6]);
                      translate([-21.6, -24.85, 0])square([43.2, 1.6]);
                      translate([23.25, -21.6, 0])square([1.6, 43.2]);
                      translate([-24.85, -21.6, 0])square([1.6, 43.2]);
                    }

                }

        }

    }

  }
}
$fn=64;
Container_num_x_2_num_y_0_5();
